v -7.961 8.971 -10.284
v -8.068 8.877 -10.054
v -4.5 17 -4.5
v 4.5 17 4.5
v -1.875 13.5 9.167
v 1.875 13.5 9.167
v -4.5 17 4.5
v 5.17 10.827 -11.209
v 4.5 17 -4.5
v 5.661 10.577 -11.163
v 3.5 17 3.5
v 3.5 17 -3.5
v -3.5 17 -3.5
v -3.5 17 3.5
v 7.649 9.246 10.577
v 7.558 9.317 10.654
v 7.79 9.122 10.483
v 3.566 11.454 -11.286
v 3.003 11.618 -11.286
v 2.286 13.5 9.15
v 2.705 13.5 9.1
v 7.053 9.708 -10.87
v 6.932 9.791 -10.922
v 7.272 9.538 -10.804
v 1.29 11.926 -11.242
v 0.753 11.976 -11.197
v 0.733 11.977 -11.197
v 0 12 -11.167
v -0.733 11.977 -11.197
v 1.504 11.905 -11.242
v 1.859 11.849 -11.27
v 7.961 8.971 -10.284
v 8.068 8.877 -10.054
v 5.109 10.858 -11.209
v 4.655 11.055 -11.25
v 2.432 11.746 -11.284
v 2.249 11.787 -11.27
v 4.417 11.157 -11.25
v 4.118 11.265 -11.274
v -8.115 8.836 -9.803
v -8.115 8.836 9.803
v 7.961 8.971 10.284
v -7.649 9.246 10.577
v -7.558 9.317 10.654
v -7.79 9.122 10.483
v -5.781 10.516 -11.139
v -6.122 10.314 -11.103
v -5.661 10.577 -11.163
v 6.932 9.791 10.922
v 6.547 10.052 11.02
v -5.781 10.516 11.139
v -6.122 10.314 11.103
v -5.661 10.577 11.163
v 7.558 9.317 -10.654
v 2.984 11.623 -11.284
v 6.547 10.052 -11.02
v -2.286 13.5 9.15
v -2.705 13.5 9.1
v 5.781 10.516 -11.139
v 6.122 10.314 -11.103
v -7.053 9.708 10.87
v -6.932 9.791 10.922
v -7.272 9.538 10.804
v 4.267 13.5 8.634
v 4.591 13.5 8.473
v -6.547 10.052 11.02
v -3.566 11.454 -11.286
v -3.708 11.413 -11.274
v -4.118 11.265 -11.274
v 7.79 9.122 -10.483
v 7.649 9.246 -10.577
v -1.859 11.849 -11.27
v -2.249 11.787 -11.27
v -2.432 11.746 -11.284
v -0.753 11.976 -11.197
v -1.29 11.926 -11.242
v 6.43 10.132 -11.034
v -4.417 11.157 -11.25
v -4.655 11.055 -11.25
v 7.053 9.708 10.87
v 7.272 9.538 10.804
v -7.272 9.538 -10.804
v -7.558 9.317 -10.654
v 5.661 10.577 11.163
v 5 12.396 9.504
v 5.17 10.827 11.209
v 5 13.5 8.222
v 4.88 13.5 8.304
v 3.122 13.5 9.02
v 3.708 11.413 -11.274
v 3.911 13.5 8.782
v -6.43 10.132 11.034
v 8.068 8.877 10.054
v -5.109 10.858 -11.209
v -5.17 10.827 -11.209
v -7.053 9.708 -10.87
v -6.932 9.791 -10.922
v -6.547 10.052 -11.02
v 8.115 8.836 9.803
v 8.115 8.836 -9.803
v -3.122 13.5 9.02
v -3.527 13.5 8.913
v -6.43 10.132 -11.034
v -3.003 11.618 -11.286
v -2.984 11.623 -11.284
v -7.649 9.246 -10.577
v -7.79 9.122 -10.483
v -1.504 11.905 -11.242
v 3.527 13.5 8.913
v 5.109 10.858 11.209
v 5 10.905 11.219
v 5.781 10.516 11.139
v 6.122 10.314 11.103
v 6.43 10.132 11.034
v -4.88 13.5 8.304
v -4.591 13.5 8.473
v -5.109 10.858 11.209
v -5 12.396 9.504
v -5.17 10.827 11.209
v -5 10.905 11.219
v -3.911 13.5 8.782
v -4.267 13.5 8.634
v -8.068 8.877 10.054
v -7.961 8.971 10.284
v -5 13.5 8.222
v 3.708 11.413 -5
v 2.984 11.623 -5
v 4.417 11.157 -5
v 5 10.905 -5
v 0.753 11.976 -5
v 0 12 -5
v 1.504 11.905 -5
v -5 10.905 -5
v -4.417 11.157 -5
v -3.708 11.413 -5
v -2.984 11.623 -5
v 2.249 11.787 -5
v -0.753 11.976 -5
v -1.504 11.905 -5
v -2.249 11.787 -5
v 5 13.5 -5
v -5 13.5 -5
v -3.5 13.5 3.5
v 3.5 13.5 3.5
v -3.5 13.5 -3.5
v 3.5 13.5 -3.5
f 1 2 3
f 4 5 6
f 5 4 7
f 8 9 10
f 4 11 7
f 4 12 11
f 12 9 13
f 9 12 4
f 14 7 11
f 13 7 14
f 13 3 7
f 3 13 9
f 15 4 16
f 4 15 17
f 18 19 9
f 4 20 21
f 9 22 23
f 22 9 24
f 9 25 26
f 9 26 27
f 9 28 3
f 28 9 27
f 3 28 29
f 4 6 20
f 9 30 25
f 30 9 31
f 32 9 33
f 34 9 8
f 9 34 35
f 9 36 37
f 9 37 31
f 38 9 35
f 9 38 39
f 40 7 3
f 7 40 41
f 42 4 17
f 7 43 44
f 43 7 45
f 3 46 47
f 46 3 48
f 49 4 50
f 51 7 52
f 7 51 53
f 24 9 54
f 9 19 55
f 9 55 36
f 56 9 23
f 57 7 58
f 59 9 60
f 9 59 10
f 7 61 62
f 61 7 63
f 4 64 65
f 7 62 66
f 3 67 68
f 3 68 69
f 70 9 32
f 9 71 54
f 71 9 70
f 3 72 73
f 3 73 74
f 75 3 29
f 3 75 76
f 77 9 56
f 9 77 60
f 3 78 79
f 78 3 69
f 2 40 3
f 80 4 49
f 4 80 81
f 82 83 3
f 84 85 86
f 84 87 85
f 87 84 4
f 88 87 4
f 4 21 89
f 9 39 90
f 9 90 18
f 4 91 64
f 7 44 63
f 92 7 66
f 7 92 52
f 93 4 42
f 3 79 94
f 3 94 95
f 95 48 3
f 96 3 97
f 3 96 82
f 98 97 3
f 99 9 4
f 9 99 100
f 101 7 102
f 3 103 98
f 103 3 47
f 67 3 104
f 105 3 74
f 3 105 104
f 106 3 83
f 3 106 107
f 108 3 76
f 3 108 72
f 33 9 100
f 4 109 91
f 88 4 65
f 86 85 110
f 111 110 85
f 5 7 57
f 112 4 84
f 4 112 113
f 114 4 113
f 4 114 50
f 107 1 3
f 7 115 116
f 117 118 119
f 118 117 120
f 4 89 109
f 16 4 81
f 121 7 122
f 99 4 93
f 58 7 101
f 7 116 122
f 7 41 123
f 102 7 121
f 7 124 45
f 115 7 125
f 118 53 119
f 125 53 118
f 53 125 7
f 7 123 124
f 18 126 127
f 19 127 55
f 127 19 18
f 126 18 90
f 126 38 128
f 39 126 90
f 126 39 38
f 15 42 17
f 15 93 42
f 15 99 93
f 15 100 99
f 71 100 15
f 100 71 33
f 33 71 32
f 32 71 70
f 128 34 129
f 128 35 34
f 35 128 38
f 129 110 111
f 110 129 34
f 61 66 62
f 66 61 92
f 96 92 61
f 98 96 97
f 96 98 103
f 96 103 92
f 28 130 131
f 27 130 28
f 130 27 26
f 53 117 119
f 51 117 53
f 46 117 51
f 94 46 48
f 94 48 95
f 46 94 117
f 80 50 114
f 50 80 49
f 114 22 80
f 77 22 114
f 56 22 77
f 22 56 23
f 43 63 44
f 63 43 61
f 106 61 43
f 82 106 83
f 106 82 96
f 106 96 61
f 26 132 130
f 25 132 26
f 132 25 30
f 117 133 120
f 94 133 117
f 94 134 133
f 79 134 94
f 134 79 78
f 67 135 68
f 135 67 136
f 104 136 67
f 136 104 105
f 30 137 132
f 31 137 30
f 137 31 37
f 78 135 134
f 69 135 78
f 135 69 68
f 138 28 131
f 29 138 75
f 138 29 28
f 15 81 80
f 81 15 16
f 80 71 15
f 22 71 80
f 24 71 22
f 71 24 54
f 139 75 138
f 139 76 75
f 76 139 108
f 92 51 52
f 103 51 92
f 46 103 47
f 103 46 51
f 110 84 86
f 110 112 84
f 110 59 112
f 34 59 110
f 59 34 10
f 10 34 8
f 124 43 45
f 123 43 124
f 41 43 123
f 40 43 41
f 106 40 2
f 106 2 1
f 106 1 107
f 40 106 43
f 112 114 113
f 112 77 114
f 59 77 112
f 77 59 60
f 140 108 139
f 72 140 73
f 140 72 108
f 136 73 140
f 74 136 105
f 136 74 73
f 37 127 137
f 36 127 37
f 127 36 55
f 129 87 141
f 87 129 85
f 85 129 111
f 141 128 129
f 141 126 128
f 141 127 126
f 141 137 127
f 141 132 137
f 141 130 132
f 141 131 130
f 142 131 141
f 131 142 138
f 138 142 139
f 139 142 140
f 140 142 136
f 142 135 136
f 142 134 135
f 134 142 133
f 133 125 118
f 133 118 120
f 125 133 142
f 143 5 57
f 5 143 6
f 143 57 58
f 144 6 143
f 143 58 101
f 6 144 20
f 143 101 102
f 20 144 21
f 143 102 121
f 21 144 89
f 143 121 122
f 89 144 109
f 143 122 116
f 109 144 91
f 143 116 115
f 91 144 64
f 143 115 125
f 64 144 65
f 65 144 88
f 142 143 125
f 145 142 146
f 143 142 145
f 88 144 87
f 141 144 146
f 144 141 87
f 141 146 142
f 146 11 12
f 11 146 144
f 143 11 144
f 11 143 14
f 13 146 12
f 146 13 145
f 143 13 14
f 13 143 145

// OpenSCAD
r_bar = 12;
width_button = 7;
height_button = 5;

step_height = 1.5;
step_width = 1.5;

r_curve = 11;
l_curve = 25;

th= 1;

$fn = 100;
difference(){
    hull(){
        translate([0, r_bar + height_button/2, 0]) cube([width_button + 2*th, height_button, width_button + 2*th], center=true);
        cylinder(l_curve, r_curve, r_curve, center=true);
    }
    cylinder(l_curve, r_bar, r_bar, center=true);
    
    translate([-width_button/2 - step_height, 0, -width_button/2 - step_width]) cube([width_button + 2*step_width, step_height + r_bar, width_button/2 + step_width + l_curve/2]);
    
    translate([0, r_bar/2 + height_button/2, 0]) cube([width_button, height_button + r_bar, width_button], center=true);
}
